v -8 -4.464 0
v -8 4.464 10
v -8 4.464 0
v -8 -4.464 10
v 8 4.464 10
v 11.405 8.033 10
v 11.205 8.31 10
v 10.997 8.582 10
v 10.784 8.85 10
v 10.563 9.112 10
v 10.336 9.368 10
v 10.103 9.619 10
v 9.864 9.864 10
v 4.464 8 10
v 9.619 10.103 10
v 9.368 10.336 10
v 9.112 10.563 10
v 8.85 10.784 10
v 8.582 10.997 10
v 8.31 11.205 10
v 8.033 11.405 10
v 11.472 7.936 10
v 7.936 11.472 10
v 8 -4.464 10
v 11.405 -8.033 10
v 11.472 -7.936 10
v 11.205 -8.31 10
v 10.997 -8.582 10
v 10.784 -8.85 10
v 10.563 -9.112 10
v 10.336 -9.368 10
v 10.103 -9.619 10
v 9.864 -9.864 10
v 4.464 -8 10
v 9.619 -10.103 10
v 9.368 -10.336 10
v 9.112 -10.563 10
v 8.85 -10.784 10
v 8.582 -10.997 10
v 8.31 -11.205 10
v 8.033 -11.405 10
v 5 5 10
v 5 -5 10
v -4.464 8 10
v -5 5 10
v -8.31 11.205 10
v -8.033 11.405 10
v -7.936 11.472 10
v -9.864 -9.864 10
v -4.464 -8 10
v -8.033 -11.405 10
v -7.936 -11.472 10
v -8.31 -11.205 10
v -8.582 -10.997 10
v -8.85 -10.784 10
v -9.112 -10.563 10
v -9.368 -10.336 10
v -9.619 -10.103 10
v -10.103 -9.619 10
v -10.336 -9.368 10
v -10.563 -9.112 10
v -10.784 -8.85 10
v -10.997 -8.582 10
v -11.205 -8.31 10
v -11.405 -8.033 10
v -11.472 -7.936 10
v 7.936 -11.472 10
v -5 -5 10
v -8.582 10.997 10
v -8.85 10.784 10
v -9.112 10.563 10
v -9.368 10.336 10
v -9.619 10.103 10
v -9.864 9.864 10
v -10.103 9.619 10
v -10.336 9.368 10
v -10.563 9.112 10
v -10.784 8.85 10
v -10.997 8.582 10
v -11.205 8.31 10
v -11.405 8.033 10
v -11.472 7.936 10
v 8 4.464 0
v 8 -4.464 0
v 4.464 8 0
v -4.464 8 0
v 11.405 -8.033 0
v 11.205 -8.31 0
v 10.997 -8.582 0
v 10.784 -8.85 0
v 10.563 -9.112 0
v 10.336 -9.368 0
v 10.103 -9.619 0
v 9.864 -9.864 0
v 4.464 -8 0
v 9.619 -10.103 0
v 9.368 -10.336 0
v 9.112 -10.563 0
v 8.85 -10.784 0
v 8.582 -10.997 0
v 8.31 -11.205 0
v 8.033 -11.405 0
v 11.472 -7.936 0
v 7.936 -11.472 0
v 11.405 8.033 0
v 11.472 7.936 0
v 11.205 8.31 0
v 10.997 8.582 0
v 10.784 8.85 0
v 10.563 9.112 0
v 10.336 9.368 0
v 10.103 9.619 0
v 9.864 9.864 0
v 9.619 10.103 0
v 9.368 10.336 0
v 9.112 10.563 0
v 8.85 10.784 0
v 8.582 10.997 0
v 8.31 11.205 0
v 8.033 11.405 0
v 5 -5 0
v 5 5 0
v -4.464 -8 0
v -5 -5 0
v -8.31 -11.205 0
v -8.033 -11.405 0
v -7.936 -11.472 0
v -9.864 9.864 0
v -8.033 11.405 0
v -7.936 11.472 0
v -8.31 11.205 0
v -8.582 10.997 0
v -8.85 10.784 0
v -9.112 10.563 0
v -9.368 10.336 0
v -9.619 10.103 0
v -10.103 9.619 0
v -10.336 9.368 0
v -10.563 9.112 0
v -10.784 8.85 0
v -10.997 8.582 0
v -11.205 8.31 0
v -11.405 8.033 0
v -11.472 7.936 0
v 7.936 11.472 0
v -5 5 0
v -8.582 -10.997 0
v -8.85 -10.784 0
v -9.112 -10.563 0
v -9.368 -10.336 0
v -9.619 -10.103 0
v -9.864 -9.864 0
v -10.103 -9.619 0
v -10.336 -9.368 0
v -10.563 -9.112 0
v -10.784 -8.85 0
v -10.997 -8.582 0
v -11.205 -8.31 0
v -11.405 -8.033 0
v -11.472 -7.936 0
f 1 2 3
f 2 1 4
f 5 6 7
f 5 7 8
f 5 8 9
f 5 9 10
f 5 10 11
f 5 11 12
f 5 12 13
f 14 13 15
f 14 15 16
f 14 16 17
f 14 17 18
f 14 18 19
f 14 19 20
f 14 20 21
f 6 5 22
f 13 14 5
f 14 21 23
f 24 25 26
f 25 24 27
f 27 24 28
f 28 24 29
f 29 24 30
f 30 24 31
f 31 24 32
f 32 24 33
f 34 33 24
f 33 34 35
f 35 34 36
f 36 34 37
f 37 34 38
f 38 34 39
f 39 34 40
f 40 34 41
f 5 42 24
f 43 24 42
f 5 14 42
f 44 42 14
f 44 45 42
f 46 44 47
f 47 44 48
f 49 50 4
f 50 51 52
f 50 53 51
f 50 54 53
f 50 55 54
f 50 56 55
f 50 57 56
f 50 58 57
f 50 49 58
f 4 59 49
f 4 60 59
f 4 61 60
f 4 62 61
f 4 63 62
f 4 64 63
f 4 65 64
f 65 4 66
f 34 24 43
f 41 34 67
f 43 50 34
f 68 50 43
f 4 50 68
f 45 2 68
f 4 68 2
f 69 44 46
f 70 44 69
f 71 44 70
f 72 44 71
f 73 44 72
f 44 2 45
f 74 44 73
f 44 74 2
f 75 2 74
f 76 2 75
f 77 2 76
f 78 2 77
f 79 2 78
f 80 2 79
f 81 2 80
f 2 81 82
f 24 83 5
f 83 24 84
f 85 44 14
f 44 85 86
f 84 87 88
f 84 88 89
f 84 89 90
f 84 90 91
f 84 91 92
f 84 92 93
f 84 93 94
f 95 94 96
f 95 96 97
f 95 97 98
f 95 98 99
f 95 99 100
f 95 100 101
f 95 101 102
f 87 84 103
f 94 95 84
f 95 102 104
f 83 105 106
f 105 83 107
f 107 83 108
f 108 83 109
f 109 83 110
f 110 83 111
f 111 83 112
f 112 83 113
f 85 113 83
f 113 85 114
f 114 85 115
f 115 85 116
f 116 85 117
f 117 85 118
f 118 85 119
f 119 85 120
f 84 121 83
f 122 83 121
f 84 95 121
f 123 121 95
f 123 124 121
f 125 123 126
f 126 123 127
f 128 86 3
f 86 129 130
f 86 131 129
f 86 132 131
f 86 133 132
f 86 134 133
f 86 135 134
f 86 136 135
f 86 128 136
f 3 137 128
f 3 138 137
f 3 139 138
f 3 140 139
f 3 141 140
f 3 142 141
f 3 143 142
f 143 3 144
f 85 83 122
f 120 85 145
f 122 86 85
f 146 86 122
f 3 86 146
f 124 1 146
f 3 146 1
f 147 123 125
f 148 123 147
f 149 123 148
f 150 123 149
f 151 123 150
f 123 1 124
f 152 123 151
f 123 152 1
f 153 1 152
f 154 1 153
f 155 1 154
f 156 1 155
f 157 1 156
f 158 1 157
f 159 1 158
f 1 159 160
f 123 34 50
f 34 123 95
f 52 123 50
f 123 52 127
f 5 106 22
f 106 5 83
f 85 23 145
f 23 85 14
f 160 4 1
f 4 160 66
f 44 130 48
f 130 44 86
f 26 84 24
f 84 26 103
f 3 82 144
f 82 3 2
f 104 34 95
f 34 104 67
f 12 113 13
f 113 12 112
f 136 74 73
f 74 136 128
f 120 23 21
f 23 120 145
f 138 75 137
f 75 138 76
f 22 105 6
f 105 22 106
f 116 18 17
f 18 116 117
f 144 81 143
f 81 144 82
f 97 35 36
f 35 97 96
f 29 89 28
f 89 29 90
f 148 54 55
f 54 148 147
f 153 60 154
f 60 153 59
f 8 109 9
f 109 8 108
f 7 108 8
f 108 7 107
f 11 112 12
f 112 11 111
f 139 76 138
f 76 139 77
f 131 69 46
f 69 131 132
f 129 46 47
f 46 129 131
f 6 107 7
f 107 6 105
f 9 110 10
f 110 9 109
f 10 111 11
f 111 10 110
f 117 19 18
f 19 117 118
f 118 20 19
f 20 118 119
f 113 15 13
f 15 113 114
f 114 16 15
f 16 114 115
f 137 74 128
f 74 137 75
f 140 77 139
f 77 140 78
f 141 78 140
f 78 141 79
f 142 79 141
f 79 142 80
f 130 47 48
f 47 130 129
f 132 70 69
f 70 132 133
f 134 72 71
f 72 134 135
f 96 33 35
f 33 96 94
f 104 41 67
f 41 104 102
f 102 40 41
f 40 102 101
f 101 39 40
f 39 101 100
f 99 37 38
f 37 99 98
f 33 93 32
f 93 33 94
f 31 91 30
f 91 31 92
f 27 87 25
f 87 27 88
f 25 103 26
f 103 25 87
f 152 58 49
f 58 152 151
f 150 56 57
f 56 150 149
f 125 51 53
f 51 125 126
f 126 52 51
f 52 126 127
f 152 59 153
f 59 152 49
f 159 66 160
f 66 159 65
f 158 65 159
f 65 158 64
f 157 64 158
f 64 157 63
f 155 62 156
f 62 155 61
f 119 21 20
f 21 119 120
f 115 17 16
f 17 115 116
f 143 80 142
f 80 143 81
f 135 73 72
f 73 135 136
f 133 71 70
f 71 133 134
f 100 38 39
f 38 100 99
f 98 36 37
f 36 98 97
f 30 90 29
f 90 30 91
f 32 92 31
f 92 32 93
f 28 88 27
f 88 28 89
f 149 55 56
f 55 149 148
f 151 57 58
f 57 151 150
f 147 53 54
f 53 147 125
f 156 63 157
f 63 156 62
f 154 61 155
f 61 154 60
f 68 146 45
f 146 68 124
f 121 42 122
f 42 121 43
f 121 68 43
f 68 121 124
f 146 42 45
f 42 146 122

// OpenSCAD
difference(){
	translate(v = [0, 0, 5.0000000000]) {
		intersection() {
			union() {
				union() {
					difference() {
						cube(center = true, size = [16, 16, 10]);
					}
					rotate(a = 45) {
						cube(center = true, size = [27.9000000000, 5.0000000000, 10]);
					}
				}
				rotate(a = -45) {
					cube(center = true, size = [27.9000000000, 5.0000000000, 10]);
				}
			}
			cylinder($fn = 256, center = true, d = 27.9000000000, h = 10);
		}
	}
	/* Holes Below*/
	translate(v = [0, 0, 5.0000000000]){
		intersection(){
			union(){
				union(){
					difference(){
						cube(center = true, size = [10, 10, 20]);
					}
				}
			}
		}
	} /* End Holes */ 
}
